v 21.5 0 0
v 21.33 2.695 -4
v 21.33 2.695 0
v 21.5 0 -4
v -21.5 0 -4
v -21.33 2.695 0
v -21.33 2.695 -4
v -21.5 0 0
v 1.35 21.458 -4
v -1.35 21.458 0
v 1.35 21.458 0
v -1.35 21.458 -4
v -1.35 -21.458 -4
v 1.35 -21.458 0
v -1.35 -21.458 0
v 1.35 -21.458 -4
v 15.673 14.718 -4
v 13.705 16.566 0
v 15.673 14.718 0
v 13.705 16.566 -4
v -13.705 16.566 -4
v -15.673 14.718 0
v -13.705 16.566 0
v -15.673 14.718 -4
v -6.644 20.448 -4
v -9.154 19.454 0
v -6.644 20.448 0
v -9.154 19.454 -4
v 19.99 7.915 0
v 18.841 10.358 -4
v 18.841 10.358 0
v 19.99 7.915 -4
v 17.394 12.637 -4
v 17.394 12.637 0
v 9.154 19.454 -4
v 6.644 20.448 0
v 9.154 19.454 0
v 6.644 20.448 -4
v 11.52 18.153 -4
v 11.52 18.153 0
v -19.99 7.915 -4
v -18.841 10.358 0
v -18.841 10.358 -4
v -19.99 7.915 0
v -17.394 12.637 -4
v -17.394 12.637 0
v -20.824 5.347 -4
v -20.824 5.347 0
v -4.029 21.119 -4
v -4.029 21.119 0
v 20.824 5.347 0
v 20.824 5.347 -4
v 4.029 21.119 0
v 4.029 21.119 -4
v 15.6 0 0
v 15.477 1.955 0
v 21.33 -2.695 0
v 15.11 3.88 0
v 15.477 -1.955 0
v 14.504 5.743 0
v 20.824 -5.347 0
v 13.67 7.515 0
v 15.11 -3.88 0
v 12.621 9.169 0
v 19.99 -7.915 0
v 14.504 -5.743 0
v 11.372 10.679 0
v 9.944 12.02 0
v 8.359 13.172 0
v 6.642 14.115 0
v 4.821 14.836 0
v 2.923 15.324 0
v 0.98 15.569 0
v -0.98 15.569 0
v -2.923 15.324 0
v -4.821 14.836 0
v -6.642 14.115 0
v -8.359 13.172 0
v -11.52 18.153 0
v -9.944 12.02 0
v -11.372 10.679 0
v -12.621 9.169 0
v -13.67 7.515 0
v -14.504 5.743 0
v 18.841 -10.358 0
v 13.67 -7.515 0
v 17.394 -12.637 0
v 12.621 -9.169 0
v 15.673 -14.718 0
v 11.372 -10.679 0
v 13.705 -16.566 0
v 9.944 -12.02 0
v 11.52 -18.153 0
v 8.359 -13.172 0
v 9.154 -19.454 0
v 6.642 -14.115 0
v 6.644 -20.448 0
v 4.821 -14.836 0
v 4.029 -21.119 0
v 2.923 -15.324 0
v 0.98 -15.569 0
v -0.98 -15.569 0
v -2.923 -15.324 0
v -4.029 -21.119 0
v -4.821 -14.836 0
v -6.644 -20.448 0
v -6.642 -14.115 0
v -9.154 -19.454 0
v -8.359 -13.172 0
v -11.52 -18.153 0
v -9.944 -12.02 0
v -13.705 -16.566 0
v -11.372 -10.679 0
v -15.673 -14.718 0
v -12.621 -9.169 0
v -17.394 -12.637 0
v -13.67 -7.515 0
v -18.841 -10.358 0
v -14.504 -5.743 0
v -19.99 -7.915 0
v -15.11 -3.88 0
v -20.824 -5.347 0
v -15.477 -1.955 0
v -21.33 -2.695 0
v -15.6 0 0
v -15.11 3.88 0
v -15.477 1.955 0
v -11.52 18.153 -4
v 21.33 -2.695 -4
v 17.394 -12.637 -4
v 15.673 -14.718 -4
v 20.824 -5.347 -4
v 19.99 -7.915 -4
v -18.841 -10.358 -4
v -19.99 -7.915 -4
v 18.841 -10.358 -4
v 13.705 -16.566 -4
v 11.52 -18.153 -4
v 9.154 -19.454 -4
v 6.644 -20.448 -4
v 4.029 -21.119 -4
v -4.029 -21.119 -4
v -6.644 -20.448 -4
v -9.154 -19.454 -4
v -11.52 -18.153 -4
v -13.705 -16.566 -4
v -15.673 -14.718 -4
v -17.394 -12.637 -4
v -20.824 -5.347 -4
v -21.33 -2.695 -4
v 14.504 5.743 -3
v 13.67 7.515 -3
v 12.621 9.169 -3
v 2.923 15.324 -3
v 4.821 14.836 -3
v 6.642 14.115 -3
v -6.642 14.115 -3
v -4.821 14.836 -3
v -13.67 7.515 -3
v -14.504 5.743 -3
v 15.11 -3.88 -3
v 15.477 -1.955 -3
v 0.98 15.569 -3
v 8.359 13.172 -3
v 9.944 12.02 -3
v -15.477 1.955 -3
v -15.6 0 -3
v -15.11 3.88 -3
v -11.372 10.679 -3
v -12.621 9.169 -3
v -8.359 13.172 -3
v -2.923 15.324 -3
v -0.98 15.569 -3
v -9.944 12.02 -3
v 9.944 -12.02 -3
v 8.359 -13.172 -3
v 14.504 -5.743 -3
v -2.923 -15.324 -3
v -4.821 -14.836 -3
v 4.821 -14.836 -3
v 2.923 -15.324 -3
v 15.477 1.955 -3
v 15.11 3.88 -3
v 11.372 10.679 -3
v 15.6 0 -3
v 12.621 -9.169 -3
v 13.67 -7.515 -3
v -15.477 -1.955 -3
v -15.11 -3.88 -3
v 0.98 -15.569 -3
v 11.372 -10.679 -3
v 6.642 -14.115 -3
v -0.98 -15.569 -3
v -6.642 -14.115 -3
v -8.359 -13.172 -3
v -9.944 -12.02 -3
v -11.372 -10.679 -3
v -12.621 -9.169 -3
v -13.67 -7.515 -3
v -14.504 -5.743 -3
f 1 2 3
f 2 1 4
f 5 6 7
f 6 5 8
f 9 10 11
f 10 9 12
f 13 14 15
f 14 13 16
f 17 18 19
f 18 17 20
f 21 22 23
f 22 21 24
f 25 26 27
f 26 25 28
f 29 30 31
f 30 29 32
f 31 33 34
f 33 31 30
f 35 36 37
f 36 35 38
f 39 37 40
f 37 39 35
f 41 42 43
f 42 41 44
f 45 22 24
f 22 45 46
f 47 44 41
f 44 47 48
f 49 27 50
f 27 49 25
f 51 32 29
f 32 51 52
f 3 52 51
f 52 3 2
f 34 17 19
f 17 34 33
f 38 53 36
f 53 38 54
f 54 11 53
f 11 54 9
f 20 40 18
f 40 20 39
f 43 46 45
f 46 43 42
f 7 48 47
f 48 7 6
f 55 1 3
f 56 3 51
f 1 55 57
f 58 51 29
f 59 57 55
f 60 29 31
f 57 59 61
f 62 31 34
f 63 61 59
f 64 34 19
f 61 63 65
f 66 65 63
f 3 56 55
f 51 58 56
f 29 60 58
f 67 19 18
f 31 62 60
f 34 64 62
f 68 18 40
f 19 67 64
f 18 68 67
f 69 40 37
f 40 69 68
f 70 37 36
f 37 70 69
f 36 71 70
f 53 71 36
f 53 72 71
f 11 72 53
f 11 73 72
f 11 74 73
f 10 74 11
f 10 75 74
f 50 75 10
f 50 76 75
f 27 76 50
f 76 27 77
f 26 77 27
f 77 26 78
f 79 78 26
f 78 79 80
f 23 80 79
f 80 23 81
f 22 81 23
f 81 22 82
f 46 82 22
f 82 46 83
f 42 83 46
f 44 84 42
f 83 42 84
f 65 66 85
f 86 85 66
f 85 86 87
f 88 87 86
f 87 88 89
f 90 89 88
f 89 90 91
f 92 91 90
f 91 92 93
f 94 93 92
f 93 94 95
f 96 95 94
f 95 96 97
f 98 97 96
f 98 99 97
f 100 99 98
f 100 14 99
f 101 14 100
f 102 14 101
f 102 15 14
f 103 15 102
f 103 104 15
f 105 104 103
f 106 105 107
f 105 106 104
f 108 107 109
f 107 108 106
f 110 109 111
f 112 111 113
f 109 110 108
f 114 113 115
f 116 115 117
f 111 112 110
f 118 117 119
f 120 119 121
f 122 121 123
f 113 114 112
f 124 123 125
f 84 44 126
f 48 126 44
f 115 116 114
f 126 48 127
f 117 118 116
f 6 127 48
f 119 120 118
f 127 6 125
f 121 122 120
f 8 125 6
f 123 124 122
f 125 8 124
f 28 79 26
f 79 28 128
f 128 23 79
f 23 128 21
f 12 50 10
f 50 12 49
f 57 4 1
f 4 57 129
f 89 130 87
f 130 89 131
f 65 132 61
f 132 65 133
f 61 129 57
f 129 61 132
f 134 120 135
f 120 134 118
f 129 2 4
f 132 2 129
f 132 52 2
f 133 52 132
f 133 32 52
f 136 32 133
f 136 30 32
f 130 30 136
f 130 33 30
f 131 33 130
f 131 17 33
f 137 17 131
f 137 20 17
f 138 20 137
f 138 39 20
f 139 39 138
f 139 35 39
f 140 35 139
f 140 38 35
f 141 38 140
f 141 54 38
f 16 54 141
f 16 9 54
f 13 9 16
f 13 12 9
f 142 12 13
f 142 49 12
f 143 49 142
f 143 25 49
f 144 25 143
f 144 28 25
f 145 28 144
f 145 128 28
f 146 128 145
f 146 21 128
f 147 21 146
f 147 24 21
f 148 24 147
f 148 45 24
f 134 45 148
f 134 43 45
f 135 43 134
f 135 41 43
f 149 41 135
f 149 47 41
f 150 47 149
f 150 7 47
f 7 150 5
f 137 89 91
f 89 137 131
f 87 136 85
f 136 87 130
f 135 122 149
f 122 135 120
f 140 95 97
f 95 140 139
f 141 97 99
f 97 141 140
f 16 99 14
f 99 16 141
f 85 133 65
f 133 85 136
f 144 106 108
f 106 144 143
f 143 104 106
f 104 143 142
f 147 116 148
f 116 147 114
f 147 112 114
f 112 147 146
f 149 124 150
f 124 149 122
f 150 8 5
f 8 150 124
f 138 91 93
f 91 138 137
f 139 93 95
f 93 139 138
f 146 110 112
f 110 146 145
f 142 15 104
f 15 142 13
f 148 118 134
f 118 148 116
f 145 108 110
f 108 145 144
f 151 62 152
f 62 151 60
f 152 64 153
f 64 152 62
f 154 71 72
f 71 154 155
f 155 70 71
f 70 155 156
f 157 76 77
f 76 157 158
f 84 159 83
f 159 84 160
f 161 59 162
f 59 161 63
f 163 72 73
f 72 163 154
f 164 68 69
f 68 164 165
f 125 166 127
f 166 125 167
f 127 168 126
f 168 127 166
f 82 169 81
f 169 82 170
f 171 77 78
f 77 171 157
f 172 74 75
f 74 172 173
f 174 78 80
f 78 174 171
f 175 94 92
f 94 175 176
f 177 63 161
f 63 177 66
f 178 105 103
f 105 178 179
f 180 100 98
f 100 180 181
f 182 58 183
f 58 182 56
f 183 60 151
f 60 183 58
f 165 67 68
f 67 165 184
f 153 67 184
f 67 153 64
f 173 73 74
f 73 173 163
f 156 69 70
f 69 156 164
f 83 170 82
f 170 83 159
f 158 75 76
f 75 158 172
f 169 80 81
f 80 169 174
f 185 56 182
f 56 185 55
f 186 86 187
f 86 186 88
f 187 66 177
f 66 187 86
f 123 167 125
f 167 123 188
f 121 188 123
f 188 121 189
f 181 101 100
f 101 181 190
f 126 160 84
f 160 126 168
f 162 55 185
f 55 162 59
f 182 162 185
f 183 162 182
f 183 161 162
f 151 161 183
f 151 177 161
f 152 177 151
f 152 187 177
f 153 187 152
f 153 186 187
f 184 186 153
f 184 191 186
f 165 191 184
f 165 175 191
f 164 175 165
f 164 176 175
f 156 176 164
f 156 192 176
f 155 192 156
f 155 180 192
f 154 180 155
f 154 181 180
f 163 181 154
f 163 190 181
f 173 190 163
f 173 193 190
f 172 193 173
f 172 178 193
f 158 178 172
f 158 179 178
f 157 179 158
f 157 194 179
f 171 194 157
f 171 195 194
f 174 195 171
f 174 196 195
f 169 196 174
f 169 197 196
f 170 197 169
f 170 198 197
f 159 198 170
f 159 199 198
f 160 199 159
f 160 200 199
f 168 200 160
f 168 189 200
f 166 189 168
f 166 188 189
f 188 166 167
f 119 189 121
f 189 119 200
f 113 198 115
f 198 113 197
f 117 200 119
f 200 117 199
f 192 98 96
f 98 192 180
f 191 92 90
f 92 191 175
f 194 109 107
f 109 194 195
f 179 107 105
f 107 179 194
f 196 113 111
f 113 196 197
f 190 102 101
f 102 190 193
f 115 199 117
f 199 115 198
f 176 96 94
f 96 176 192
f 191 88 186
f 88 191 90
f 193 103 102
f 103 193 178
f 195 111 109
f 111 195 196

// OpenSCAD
$fn = 50;


difference() {
	union() {
		translate(v = [0, 0, -4.0000000000]) {
			cylinder(h = 4, r = 21.5000000000);
		}
	}
	union() {
		#translate(v = [0, 0, -3.0000000000]) {
			cylinder(h = 3, r = 15.6000000000);
		}
	}
}
